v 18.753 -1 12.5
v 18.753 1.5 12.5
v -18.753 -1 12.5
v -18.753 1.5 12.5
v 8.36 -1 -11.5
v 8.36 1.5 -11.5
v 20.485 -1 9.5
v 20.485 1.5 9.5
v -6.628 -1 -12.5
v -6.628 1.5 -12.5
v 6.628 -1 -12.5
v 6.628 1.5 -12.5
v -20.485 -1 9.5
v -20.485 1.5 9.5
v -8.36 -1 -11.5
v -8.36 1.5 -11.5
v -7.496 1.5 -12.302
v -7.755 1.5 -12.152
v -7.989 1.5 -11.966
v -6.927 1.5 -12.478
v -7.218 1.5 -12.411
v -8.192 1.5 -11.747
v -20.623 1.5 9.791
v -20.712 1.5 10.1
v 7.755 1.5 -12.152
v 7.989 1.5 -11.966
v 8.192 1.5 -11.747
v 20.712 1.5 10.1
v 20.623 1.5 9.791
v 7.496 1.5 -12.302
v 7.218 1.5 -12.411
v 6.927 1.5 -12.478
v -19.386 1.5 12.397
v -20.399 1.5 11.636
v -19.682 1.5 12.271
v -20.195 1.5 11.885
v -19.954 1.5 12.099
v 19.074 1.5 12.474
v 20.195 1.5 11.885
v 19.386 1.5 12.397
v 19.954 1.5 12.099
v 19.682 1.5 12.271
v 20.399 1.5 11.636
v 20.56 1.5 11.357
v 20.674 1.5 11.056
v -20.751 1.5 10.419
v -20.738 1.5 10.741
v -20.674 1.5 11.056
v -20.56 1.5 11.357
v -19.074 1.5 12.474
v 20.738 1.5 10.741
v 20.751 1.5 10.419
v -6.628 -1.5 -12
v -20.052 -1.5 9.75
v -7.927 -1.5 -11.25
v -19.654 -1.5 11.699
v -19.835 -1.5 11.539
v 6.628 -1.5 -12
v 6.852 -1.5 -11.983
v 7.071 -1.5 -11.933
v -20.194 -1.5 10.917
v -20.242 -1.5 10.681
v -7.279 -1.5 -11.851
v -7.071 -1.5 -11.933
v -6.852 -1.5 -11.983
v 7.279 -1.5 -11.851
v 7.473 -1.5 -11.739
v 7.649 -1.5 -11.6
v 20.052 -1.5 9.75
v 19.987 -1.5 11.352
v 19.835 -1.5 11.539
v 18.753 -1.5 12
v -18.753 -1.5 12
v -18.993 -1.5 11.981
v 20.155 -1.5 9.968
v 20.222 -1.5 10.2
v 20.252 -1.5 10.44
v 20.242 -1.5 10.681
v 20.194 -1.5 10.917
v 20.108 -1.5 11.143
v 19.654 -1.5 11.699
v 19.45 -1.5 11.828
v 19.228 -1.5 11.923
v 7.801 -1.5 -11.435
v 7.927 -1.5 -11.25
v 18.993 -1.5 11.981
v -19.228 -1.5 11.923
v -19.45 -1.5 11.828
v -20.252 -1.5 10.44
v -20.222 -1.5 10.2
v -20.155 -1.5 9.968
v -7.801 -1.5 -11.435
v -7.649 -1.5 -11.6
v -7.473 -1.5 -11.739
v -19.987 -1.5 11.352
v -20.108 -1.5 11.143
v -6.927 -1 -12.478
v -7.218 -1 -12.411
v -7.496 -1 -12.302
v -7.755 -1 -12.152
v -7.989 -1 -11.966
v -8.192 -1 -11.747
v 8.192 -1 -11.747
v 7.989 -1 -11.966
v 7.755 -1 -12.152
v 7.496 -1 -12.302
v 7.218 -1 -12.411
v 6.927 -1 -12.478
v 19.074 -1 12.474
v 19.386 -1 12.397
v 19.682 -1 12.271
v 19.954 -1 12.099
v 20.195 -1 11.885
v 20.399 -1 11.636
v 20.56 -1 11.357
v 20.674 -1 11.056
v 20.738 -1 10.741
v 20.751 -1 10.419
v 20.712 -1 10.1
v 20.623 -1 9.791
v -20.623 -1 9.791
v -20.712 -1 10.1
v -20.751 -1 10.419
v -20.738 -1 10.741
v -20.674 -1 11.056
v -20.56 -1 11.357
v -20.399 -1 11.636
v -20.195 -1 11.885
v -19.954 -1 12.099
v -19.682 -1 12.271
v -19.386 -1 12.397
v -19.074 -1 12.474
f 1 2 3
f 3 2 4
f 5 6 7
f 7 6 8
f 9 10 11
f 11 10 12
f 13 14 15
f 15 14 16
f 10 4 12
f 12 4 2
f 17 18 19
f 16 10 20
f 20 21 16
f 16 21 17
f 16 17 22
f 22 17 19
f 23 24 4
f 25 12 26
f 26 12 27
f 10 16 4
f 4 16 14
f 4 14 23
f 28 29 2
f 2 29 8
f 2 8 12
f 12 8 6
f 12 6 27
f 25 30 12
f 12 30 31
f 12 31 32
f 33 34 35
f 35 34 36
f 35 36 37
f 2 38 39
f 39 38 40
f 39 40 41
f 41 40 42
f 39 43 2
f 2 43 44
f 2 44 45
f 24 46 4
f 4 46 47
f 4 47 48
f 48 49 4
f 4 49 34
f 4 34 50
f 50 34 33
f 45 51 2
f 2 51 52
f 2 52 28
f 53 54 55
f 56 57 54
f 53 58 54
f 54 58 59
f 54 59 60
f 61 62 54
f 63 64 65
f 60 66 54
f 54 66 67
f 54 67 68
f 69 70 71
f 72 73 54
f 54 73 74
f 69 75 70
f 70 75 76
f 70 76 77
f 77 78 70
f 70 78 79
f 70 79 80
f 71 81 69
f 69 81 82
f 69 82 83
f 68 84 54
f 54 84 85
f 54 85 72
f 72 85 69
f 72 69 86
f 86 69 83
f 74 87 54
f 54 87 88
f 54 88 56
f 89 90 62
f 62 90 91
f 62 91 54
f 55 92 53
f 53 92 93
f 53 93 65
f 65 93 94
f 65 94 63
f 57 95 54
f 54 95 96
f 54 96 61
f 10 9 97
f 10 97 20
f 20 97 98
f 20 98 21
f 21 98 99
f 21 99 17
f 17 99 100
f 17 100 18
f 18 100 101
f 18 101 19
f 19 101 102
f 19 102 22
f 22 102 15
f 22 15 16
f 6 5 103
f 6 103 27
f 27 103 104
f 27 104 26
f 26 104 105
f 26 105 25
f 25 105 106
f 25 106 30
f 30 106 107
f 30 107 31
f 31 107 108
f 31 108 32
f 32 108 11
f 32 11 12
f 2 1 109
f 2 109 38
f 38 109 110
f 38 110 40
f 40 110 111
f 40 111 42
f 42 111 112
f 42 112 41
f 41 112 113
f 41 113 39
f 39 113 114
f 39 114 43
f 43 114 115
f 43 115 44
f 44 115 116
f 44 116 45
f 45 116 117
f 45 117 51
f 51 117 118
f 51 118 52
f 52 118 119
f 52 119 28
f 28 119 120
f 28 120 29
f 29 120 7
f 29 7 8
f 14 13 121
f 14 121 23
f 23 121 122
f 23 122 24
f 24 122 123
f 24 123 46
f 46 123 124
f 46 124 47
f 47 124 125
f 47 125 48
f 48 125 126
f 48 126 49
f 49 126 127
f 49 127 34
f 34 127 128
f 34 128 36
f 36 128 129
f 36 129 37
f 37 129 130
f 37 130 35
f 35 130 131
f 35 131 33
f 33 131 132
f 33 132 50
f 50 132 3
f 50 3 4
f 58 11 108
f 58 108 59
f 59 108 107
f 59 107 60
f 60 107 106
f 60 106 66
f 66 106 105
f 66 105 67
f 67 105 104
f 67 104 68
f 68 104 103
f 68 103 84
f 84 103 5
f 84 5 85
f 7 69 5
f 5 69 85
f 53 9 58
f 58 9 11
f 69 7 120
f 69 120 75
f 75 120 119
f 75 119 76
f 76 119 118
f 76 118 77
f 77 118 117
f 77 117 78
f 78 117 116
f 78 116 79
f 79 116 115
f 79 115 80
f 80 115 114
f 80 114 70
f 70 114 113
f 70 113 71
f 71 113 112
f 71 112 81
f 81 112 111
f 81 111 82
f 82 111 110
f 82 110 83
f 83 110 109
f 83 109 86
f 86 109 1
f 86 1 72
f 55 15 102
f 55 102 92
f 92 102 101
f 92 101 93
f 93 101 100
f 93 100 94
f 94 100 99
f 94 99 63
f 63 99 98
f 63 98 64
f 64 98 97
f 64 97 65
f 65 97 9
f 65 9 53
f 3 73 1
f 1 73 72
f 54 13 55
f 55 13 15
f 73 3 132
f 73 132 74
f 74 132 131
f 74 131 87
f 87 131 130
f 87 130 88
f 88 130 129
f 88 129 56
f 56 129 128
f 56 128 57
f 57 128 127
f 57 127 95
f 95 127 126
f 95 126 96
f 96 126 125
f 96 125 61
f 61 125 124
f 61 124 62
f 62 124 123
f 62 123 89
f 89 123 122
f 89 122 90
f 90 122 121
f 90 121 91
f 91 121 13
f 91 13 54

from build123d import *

# Parameters (mm, degrees)
BOSS_EXTRUDE1_DEPTH = 1.5
FILLET5_R           = 2
CHAMFER1_SIZE       = 0.5


with BuildPart() as part:
    # Sketch1 → Boss-Extrude1 (new, symmetric)
    with BuildSketch(Plane(origin=(0, 0, 0), x_dir=(1, 0, 0), z_dir=(0, 1, 0))):
        Polygon((-14.297771125, -12.5), (14.297771125, -12.5), (22.216878365, -12.5), (7.783121635, 12.5), (-7.783121635, 12.5), (-22.216878365, -12.5), align=None)
    extrude(amount=BOSS_EXTRUDE1_DEPTH, both=True)

    # Fillet5
    fillet5_edges = [part.edges().sort_by_distance(p)[0] for p in [
        (-22.216878365, 0, 12.5),
        (-7.783121635, 0, -12.5),
        (7.783121635, 0, -12.5),
        (22.216878365, 0, 12.5),
    ]]
    fillet(fillet5_edges, radius=FILLET5_R)

    # Chamfer1
    chamfer1_edges = [part.edges().sort_by_distance(p)[0] for p in [
        (-14.422649731, -1.5, -1),
        (0, -1.5, 12.5),
        (0, -1.5, -12.5),
        (14.422649731, -1.5, -1),
        (-20.484827557, -1.5, 11.5),
        (20.484827557, -1.5, 11.5),
        (7.628421097, -1.5, -12.232050808),
        (-7.628421097, -1.5, -12.232050808),
    ]]
    chamfer(chamfer1_edges, length=CHAMFER1_SIZE)


solid = part.part
